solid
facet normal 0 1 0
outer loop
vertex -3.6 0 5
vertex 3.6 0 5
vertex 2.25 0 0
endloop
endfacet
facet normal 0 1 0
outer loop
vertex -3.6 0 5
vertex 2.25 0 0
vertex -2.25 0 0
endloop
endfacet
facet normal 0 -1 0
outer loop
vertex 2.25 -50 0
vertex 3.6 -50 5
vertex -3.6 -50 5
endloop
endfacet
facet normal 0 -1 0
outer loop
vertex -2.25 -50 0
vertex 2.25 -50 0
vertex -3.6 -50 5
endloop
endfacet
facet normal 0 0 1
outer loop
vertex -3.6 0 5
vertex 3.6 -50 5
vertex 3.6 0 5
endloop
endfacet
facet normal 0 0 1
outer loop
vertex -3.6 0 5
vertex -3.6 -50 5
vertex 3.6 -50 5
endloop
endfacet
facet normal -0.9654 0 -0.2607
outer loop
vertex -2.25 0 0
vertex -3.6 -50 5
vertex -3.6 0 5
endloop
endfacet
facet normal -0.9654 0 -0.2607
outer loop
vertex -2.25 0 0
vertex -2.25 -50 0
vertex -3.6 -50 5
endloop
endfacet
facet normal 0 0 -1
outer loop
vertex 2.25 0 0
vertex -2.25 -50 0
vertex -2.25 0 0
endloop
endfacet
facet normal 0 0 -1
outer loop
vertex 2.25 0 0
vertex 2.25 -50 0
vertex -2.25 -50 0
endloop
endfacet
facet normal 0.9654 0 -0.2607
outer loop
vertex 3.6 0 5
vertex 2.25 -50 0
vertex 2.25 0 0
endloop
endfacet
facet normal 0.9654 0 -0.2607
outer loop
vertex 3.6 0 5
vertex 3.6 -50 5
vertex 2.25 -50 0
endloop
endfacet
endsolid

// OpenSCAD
// file: globals.scad
/*
Most things in this file is represented as one millimeter, so keep that in mind while changing things.
Some of the setting are not mm but at variables that you can set, such as 2*x=2x and you are setting what x is.
I will try to specify when things are variables and not exact measurements.
*/

obj_leg = 30;
leg_length = 5.5;
small_number = 0.001;
metal_core_rode_global = 5;


///////////////// number of holes /////////////////////
z_hole_number = 8;
other_holes = 8;

///////////////// Pins /////////////////////

//pins that poke out
ball_size = 10;
pin_height = 20;
pin_diameter = 6;


//holes
hole_ball_size = ball_size;
hole_pin_height = pin_height;
hole_pin_diameter = pin_diameter;

///////////////// Z THINGS /////////////////////

berring_slot_width = 7.5;
berring_slot_depth = 6.5;
metal_core_rode = 5;

///////////////// X THINGS /////////////////////

//male dove tails
max_width=8;
min_width=5;
depth=5;
height=obj_leg/2;

//female dove tails, this is found on the y mounts
girl_max_width=11;
girl_min_width=5;
girl_depth=5;
girl_height=obj_leg;


///////////////// Y THINGS /////////////////////
/*
The Y is so normal that all of those global variables at the top should change all of the setting in it, this section is set her incase there are variables set in the future development of this project.
*/
// file: include.scad
//////////////////      END SECTION       //////////////////

	module added_pins(){
		difference(){
			union(){
				translate([30/(15/4),obj_leg*leg_length,30/(15/4)]) pin();
				translate([30/(15/4)+14.5,obj_leg*leg_length,30/(15/4)+14]) pin();
			}
			union(){
							translate([30/(15/4)+13.5,obj_leg*leg_length-20,30/(15/4)+5])cube(size=[2,40,15]);
							translate([30/(15/4)+7.5,obj_leg*leg_length-20,30/(15/4)+15])rotate([0,90,0]) cube(size=[2,40,15]);	

							translate([30/(15/4)-1,obj_leg*leg_length-20,30/(15/4)-8])cube(size=[2,40,15]);
							translate([30/(15/4)-10,obj_leg*leg_length-20,30/(15/4)+1])rotate([0,90,0]) cube(size=[2,40,15]);
			}
		}
	}
	module taken_pins() {
		translate([30/(15/4)+14,obj_leg*leg_length-10,30/(15/4)]) mirror_pin();
		translate([30/(15/4),obj_leg*leg_length-10,30/(15/4)+15]) mirror_pin();
	}


//////////////////      OTHER STUFF       //////////////////

	module holes() {
		rotate([0,0,90]) for(y=[0:other_holes])
		translate([obj_leg+y*15,-15.5,7.5]) union() {
			translate([7.5,0,15]) hole_up();
			hole_down();
		}
	}
	module extend_holes() {
	module top(){
		rotate([0,0,90]) for(y=[0:other_holes+1])
		translate([(30/4)+y*15,-15.5,7.5]) union() {
			translate([7.5,0,15]) hole_up();
		}
	}
	module bottom(){
		rotate([0,0,90]) for(y=[0:other_holes+2])
		translate([(30/4)+y*15,-15.5,7.5]) union() {
			hole_down();
		
}
	}
	union(){
		top();
		bottom();
	}
	}

	module hole() {
		union() {
			rotate([90, 90, 0]) cylinder(h=40, d=hole_pin_diameter, center=true);
			translate([0,7.5,0]) sphere(d=hole_ball_size);
			translate([0,-6,0]) sphere(d=hole_ball_size);
		}
	}
	module hole_up() {
		union() {
			rotate([90, 90, 0]) cylinder(h=40, d=hole_pin_diameter, center=true);
			translate([0,7.5,10]) cylinder(h=hole_pin_height, d=hole_pin_diameter, center=true);
			translate([0,-6,10]) cylinder(h=hole_pin_height, d=hole_pin_diameter, center=true);
			translate([0,7.5,0]) sphere(d=hole_ball_size);
			translate([0,-6,0]) sphere(d=hole_ball_size);
		}
	}
	module hole_down() {
		union() {
			rotate([90, 90, 0]) cylinder(h=40, d=hole_pin_diameter, center=true);
			translate([0,7.5,-10]) cylinder(h=hole_pin_height, d=hole_pin_diameter, center=true);
			translate([0,-6,-10]) cylinder(h=hole_pin_height, d=hole_pin_diameter, center=true);
			translate([0,7.5,0]) sphere(d=hole_ball_size);
			translate([0,-6,0]) sphere(d=hole_ball_size);
		}
	}
	module pin() {
		union() {
			rotate([90, 90, 0]) cylinder(h=pin_height, d=pin_diameter, center=true);
			translate([0,7.5,0]) sphere(d=ball_size);
		}
	}

	module mirror_pin() {
		rotate([90, 90, 0]) cylinder(h=hole_pin_height+small_number, d=hole_pin_diameter, center=true);
		translate([0,-(pin_height-(ball_size/2)),0]) sphere(d=ball_size);
	}


//////////////////      SOME RACK AND Z THINGS       //////////////////

module z_holes() {
    rotate([0,-90,0]) for(z=[0:z_hole_number])
    translate([22.5+z*15,16,-12])
        hole();
}

module pin_cuts() {
	union(){
		cube(size=[2,10,40], center=true);
		rotate([0,0,90]) cube(size=[2,10,40], center=true);
	}
}
module pin_uncut() {
	union(){
		rotate([0, 0, 90]) cylinder(h=hole_pin_height, d=hole_pin_diameter, center=true);
		translate([0,0,10]) sphere(d=ball_hole);
	}
}


module pin_out() {
	union(){
		rotate([0, 0, 90]) cylinder(h=pin_height, d=pin_diameter, center=true);
		translate([0,0,10]) sphere(d= ball_size);
	}
}


module pins_z(){
	difference() {
		pin_out();
		pin_cuts();
	}
}
//////////////////      RACK AND SLIDE     ///////////////////

module straight_pins() {
	for(z=[0:((((obj_leg*leg_length)*2)-(obj_leg*2))/3)/14.5]) rotate([-90,0,0]) translate([z*15,30/(15/4),14]) pins_z();
	for(z=[0:((((obj_leg*leg_length)*2)-(obj_leg*2))/3)/14.5]) rotate([-90,0,0]) translate([z*15,30/(15/4)-14,14]) pins_z();
}
module stagger_pins() {
	for(z=[0:((((obj_leg*leg_length)*2)-(obj_leg*2))/3)/14.5]) rotate([-90,0,0]) translate([z*15,30/(15/4),14]) pins_z();
	for(z=[0:((((obj_leg*leg_length)*2)-(obj_leg*2))/3)/14.5]) rotate([-90,0,0]) translate([z*15+7,30/(15/4)-14,14]) pins_z();
}


//////////////////      DOVE TAIL       //////////////////

module male_dovetail(height) {
	dovetail_3d(max_width,min_width,depth,height);
}

module dovetail_3d(max_width=11, min_width=5, depth=5, height=30) {
	linear_extrude(height=height, convexity=2)
		dovetail_2d(max_width,min_width,depth);
}

module dovetail_2d(max_width=11, min_width=5, depth=5) {
	angle=atan((max_width/2-min_width/2)/depth);
	echo("angle: ", angle);
	polygon(paths=[[0,1,2,3,0]], points=[[-min_width/2,0], [-max_width/2,depth], [max_width/2, depth], [min_width/2,0]]);
}

//bow tie
	module tie_end(height){
				rotate([0,0,0]) translate([0,-0.01,((obj_leg/2)/2)]) male_dovetail(height);
				rotate([0,90,0]) translate([0,-0.01,((obj_leg/2)/2)]) male_dovetail(height);
				rotate([0,180,0]) translate([0,-0.01,((obj_leg/2)/2)]) male_dovetail(height);
				rotate([0,-90,0]) translate([0,-0.01,((obj_leg/2)/2)]) male_dovetail(height);
	}

module bow_support(){
	difference(){
		intersection(){
			translate([-15,0,-15]) cube([30,9,30]);
			scale([1.05,1.05,1.05]) rotate([0,45,0]) tie_end();
		}
		cube([29.2,29.2,29.2], center=true);
	}
}

	module wrap(){
		depth = 30;
				translate([-15,30,15]) rotate([90,180,90]) male_dovetail(height=depth);
				rotate([0,90,0]) translate([-15,30,15]) rotate([90,180,90]) male_dovetail(height=depth);
				rotate([0,180,0]) translate([-15,30,15]) rotate([90,180,90]) male_dovetail(height=depth);
				rotate([0,-90,0]) translate([-15,30,15]) rotate([90,180,90]) male_dovetail(height=depth);
	}
// main file
length = 50;
tilt_level = 1.1;
scaling_x = .9;
scaling_y = 1;
scaling_z = 1;
include <include.scad>;
include <globals.scad>;

		scale([scaling_x,scaling_y,scaling_z])	rotate([90,0,0])	 male_dovetail(height=length);
